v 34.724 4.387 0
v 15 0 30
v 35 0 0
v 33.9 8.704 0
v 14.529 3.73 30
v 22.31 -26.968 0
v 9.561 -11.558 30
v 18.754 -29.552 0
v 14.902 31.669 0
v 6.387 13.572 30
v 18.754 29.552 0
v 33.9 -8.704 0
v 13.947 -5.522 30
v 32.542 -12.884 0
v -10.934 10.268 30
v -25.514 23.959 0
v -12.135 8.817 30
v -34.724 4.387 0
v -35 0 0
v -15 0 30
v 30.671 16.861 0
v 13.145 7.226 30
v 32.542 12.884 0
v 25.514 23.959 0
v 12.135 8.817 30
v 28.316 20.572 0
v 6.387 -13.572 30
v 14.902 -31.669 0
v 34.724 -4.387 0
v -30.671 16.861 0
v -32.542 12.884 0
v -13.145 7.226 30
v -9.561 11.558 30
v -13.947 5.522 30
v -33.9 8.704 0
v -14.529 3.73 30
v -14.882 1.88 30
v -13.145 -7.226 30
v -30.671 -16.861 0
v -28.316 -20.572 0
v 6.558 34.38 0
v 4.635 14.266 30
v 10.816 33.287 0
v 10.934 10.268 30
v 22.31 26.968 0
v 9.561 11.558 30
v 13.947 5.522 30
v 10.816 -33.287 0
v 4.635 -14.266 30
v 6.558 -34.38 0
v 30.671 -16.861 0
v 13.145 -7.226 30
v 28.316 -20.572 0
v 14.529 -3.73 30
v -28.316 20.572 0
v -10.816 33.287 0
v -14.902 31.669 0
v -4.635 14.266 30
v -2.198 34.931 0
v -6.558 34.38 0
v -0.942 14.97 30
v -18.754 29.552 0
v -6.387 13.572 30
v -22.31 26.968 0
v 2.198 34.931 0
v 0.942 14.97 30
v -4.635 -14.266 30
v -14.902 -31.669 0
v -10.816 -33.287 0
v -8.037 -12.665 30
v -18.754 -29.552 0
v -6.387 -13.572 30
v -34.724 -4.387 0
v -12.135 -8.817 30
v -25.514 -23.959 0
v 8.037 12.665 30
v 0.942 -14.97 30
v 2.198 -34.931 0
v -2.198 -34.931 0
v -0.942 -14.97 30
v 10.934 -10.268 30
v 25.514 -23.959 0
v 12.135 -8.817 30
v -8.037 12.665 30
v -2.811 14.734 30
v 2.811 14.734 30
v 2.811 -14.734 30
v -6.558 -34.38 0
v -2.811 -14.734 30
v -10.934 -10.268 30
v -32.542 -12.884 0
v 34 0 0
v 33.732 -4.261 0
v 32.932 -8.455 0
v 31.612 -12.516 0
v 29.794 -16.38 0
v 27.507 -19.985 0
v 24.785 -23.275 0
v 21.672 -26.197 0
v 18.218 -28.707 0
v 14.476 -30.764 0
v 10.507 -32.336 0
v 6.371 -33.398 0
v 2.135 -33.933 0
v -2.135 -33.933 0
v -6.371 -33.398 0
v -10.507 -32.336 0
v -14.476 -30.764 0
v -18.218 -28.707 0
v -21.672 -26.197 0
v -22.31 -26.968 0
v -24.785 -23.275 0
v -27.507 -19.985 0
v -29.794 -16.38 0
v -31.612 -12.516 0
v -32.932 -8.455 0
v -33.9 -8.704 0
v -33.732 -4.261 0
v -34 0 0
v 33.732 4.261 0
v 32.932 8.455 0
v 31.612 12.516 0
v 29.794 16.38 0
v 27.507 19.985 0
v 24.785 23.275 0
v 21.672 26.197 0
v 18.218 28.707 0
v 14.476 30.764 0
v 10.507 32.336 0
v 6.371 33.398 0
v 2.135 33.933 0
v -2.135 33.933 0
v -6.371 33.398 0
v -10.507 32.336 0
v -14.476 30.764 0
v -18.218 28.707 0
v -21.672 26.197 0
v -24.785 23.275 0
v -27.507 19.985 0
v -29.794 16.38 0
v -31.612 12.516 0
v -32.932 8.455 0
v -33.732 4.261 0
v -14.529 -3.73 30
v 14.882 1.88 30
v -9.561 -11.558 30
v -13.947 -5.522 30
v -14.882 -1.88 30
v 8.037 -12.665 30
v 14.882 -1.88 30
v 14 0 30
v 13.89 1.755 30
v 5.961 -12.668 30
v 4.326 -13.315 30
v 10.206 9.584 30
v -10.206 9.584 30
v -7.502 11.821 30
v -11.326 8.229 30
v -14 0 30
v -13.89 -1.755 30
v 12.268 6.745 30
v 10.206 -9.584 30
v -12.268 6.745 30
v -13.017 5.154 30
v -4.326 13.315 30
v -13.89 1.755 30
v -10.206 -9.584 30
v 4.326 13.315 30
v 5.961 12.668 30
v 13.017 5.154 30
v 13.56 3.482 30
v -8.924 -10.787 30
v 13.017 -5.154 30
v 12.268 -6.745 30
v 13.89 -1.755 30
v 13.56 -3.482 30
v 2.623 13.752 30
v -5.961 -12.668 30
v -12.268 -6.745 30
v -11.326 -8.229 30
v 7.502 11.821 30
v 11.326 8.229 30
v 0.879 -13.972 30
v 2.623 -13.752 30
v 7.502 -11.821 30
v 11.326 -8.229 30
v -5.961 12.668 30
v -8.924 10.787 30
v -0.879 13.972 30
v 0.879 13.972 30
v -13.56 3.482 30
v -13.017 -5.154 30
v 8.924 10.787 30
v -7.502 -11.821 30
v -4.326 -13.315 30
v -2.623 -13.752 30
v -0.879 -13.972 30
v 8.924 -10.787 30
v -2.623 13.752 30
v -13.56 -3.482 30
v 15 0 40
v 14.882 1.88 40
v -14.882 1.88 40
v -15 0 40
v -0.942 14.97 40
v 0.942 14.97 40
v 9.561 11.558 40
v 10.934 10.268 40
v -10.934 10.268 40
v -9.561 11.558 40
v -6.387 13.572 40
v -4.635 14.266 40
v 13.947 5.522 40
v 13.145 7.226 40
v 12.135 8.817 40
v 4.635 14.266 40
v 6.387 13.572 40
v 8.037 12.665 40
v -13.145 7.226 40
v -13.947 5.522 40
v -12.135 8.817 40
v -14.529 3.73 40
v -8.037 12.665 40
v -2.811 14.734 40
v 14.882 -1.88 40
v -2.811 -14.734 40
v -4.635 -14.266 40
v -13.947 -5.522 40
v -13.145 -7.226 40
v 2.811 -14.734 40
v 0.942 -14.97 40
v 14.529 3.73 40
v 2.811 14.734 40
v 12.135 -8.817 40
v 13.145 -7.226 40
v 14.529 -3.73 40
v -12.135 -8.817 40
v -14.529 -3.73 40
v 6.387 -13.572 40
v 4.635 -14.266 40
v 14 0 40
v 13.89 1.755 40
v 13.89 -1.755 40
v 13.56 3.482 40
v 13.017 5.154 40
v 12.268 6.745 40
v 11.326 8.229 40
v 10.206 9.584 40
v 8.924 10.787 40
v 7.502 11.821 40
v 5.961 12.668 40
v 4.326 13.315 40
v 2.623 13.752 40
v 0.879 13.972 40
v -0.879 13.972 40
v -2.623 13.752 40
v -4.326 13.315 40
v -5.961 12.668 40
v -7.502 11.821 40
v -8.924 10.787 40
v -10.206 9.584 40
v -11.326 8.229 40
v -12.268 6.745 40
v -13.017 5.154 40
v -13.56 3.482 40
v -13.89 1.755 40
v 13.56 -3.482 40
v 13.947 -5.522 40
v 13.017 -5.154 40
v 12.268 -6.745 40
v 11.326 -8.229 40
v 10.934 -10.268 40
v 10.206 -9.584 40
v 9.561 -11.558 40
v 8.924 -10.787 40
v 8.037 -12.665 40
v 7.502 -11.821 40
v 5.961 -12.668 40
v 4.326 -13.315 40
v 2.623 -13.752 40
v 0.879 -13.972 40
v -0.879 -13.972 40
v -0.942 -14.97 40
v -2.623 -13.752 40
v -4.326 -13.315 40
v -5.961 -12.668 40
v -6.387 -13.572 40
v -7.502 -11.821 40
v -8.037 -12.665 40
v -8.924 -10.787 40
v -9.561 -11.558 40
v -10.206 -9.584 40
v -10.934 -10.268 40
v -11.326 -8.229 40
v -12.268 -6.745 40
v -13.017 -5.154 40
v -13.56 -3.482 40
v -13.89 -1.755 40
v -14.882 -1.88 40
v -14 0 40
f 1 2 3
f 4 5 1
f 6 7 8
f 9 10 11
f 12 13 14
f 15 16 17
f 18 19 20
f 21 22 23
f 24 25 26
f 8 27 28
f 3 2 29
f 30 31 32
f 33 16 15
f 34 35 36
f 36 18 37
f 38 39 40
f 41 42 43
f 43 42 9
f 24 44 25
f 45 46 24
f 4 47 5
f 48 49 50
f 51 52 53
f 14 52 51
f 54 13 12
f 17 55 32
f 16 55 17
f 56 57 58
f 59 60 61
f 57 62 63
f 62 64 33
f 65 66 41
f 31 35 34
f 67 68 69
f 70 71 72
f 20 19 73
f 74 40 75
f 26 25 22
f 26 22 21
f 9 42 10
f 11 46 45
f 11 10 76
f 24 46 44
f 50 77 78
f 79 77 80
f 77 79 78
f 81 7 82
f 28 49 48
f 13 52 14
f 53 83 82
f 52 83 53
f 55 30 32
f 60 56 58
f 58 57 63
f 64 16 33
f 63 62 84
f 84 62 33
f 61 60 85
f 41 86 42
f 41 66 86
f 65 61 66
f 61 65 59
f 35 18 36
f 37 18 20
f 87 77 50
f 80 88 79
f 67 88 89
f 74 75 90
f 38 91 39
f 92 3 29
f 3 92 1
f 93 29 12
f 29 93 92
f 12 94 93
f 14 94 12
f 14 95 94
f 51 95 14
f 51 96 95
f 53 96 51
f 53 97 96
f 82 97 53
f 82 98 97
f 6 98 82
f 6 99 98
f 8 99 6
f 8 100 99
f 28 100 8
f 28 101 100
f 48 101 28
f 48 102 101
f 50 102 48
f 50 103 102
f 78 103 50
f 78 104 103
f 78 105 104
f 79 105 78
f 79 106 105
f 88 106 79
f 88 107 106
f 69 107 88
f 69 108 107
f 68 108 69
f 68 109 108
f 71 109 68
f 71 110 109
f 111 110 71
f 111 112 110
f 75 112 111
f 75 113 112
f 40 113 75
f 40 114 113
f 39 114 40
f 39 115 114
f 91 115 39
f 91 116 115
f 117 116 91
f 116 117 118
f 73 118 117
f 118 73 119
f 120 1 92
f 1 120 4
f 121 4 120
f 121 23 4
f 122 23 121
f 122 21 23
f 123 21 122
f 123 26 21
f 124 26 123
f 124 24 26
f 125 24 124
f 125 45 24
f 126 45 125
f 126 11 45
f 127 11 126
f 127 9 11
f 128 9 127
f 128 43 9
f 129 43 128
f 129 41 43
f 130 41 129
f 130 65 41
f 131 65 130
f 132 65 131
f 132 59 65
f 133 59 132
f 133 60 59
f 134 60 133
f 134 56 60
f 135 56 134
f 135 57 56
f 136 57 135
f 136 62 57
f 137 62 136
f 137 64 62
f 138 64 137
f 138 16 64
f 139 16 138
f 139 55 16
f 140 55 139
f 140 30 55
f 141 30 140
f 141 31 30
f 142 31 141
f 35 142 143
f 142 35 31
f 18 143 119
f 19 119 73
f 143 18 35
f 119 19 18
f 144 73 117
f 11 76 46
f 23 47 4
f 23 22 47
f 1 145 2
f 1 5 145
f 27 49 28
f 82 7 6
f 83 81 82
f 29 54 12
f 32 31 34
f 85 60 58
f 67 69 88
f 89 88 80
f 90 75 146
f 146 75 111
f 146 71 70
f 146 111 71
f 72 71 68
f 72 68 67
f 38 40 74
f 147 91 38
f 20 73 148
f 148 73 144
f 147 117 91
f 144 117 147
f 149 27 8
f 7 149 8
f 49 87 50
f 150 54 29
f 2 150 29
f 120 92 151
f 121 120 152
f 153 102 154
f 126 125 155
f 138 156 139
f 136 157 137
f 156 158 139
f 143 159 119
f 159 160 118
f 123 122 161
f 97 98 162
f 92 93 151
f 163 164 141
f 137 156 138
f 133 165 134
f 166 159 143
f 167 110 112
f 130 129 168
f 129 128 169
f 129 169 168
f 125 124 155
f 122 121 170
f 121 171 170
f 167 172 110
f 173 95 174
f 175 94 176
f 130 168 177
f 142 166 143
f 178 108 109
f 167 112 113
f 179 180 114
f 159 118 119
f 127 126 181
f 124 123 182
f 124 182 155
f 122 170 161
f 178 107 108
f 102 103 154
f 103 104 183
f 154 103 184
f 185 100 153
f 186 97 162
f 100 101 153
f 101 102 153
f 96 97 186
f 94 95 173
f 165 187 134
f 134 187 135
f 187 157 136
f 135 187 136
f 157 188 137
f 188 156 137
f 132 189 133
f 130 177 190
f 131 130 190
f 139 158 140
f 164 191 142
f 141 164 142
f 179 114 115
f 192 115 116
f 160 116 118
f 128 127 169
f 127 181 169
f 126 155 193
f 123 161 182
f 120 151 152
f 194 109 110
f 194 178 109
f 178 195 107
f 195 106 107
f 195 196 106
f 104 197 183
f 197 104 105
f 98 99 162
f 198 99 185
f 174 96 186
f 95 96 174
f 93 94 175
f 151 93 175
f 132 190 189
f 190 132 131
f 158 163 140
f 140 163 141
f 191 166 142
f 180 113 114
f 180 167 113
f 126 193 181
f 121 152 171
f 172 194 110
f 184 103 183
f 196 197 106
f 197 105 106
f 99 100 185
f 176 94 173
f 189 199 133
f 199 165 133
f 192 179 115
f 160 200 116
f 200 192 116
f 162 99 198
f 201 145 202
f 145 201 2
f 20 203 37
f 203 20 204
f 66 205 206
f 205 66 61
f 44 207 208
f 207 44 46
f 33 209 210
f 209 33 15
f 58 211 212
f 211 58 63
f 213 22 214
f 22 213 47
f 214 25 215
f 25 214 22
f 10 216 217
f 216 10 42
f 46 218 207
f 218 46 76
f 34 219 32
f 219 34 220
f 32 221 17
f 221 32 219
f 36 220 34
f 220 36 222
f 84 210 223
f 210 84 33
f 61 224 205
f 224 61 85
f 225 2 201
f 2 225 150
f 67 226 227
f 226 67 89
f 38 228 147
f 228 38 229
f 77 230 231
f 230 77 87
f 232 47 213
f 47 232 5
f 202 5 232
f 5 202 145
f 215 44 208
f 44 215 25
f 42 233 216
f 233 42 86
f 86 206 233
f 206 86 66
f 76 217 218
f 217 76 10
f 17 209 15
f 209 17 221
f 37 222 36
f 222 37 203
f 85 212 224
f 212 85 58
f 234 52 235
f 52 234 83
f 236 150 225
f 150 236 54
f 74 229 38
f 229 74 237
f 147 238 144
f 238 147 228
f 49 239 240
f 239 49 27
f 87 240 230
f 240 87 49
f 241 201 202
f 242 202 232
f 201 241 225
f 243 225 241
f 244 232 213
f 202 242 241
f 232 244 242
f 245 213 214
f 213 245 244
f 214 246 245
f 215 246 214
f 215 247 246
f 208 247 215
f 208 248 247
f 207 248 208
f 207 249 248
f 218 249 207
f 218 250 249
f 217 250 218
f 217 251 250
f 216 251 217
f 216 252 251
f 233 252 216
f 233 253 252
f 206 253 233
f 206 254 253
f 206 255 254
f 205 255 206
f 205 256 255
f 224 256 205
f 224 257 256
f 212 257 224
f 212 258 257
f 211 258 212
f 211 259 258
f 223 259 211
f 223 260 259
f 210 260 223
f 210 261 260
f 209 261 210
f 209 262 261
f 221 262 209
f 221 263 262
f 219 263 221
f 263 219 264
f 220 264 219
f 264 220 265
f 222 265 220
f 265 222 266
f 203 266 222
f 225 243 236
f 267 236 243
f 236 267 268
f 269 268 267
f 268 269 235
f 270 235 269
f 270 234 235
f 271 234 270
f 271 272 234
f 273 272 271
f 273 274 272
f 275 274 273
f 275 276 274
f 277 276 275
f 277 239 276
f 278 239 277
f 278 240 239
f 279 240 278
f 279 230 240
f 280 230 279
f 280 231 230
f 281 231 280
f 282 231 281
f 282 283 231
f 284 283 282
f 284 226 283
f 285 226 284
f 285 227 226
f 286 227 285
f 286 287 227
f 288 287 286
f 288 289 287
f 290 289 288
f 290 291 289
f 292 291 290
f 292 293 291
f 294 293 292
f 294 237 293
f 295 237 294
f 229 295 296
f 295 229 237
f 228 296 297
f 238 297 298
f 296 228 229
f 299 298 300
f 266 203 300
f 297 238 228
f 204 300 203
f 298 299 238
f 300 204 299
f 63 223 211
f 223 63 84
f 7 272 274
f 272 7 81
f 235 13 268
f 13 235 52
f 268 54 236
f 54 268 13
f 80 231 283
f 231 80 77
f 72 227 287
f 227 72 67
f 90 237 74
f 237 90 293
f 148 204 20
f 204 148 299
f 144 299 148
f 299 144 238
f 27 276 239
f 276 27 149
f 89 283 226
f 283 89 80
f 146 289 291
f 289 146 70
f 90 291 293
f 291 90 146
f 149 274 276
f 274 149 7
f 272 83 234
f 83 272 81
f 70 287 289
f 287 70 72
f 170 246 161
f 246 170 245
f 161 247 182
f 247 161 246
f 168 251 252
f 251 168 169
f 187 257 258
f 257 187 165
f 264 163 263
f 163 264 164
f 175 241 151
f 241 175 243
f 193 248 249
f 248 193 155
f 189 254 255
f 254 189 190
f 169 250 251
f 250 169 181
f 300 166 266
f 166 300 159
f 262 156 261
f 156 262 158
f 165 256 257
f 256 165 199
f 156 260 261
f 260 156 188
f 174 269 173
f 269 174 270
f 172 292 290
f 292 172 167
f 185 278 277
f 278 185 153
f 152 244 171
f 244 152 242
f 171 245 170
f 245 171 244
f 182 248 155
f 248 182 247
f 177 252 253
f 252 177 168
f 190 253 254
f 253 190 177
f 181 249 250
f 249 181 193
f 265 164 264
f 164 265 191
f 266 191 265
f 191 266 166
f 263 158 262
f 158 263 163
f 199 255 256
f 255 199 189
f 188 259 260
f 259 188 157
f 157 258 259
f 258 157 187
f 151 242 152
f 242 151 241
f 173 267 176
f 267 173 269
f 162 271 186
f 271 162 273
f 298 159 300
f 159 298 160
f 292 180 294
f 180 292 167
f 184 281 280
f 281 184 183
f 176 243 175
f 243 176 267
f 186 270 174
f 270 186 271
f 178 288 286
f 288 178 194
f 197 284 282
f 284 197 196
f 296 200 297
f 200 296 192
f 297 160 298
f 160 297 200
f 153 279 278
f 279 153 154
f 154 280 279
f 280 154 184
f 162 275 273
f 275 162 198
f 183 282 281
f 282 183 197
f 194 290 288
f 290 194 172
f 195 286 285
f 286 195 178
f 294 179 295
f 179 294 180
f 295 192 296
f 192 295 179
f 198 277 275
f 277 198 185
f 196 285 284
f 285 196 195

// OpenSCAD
$fn = 50;


difference() {
	union() {
		translate(v = [0, 0, 0]) {
			rotate(a = [0, 0, 0]) {
				difference() {
					union() {
						cylinder(h = 30, r1 = 35.0000000000, r2 = 15.0000000000);
					}
					union() {
						cylinder(h = 30, r1 = 34.0000000000, r2 = 14.0000000000);
					}
				}
			}
		}
		translate(v = [0, 0, 30]) {
			rotate(a = [0, 0, 0]) {
				difference() {
					union() {
						cylinder(h = 10, r = 15.0000000000);
					}
					union() {
						cylinder(h = 10, r = 14.0000000000);
					}
				}
			}
		}
		*color(alpha = 1.0000000000, c = "gray") {
			translate(v = [0, 14, 0]) {
				linear_extrude(height = 1) {
					text(font = "Arial:style=Bold", halign = "center", size = 4.5000000000, text = "COMMENT description oobb_cylinder_hollow_shape_p_type_all_save_type_3dpr_modes_1_width_1_height_1_thickness_70_mm_top_30_mm_bottom_extra_35.0_r1_15.0_r2_1_wall_thickness_30_h", valign = "center");
				}
			}
		}
		*color(alpha = 1.0000000000, c = "gray") {
			translate(v = [0, 14, 30]) {
				linear_extrude(height = 1) {
					text(font = "Arial:style=Bold", halign = "center", size = 4.5000000000, text = "COMMENT description oobb_cylinder_hollow_shape_p_type_0_0_30_pos_all_save_type_3dpr_modes_1_width_1_height_1_thickness_70_mm_top_30_mm_bottom_extra_15.0_r_1_wall_thickness_10_h", valign = "center");
				}
			}
		}
	}
	union();
}
